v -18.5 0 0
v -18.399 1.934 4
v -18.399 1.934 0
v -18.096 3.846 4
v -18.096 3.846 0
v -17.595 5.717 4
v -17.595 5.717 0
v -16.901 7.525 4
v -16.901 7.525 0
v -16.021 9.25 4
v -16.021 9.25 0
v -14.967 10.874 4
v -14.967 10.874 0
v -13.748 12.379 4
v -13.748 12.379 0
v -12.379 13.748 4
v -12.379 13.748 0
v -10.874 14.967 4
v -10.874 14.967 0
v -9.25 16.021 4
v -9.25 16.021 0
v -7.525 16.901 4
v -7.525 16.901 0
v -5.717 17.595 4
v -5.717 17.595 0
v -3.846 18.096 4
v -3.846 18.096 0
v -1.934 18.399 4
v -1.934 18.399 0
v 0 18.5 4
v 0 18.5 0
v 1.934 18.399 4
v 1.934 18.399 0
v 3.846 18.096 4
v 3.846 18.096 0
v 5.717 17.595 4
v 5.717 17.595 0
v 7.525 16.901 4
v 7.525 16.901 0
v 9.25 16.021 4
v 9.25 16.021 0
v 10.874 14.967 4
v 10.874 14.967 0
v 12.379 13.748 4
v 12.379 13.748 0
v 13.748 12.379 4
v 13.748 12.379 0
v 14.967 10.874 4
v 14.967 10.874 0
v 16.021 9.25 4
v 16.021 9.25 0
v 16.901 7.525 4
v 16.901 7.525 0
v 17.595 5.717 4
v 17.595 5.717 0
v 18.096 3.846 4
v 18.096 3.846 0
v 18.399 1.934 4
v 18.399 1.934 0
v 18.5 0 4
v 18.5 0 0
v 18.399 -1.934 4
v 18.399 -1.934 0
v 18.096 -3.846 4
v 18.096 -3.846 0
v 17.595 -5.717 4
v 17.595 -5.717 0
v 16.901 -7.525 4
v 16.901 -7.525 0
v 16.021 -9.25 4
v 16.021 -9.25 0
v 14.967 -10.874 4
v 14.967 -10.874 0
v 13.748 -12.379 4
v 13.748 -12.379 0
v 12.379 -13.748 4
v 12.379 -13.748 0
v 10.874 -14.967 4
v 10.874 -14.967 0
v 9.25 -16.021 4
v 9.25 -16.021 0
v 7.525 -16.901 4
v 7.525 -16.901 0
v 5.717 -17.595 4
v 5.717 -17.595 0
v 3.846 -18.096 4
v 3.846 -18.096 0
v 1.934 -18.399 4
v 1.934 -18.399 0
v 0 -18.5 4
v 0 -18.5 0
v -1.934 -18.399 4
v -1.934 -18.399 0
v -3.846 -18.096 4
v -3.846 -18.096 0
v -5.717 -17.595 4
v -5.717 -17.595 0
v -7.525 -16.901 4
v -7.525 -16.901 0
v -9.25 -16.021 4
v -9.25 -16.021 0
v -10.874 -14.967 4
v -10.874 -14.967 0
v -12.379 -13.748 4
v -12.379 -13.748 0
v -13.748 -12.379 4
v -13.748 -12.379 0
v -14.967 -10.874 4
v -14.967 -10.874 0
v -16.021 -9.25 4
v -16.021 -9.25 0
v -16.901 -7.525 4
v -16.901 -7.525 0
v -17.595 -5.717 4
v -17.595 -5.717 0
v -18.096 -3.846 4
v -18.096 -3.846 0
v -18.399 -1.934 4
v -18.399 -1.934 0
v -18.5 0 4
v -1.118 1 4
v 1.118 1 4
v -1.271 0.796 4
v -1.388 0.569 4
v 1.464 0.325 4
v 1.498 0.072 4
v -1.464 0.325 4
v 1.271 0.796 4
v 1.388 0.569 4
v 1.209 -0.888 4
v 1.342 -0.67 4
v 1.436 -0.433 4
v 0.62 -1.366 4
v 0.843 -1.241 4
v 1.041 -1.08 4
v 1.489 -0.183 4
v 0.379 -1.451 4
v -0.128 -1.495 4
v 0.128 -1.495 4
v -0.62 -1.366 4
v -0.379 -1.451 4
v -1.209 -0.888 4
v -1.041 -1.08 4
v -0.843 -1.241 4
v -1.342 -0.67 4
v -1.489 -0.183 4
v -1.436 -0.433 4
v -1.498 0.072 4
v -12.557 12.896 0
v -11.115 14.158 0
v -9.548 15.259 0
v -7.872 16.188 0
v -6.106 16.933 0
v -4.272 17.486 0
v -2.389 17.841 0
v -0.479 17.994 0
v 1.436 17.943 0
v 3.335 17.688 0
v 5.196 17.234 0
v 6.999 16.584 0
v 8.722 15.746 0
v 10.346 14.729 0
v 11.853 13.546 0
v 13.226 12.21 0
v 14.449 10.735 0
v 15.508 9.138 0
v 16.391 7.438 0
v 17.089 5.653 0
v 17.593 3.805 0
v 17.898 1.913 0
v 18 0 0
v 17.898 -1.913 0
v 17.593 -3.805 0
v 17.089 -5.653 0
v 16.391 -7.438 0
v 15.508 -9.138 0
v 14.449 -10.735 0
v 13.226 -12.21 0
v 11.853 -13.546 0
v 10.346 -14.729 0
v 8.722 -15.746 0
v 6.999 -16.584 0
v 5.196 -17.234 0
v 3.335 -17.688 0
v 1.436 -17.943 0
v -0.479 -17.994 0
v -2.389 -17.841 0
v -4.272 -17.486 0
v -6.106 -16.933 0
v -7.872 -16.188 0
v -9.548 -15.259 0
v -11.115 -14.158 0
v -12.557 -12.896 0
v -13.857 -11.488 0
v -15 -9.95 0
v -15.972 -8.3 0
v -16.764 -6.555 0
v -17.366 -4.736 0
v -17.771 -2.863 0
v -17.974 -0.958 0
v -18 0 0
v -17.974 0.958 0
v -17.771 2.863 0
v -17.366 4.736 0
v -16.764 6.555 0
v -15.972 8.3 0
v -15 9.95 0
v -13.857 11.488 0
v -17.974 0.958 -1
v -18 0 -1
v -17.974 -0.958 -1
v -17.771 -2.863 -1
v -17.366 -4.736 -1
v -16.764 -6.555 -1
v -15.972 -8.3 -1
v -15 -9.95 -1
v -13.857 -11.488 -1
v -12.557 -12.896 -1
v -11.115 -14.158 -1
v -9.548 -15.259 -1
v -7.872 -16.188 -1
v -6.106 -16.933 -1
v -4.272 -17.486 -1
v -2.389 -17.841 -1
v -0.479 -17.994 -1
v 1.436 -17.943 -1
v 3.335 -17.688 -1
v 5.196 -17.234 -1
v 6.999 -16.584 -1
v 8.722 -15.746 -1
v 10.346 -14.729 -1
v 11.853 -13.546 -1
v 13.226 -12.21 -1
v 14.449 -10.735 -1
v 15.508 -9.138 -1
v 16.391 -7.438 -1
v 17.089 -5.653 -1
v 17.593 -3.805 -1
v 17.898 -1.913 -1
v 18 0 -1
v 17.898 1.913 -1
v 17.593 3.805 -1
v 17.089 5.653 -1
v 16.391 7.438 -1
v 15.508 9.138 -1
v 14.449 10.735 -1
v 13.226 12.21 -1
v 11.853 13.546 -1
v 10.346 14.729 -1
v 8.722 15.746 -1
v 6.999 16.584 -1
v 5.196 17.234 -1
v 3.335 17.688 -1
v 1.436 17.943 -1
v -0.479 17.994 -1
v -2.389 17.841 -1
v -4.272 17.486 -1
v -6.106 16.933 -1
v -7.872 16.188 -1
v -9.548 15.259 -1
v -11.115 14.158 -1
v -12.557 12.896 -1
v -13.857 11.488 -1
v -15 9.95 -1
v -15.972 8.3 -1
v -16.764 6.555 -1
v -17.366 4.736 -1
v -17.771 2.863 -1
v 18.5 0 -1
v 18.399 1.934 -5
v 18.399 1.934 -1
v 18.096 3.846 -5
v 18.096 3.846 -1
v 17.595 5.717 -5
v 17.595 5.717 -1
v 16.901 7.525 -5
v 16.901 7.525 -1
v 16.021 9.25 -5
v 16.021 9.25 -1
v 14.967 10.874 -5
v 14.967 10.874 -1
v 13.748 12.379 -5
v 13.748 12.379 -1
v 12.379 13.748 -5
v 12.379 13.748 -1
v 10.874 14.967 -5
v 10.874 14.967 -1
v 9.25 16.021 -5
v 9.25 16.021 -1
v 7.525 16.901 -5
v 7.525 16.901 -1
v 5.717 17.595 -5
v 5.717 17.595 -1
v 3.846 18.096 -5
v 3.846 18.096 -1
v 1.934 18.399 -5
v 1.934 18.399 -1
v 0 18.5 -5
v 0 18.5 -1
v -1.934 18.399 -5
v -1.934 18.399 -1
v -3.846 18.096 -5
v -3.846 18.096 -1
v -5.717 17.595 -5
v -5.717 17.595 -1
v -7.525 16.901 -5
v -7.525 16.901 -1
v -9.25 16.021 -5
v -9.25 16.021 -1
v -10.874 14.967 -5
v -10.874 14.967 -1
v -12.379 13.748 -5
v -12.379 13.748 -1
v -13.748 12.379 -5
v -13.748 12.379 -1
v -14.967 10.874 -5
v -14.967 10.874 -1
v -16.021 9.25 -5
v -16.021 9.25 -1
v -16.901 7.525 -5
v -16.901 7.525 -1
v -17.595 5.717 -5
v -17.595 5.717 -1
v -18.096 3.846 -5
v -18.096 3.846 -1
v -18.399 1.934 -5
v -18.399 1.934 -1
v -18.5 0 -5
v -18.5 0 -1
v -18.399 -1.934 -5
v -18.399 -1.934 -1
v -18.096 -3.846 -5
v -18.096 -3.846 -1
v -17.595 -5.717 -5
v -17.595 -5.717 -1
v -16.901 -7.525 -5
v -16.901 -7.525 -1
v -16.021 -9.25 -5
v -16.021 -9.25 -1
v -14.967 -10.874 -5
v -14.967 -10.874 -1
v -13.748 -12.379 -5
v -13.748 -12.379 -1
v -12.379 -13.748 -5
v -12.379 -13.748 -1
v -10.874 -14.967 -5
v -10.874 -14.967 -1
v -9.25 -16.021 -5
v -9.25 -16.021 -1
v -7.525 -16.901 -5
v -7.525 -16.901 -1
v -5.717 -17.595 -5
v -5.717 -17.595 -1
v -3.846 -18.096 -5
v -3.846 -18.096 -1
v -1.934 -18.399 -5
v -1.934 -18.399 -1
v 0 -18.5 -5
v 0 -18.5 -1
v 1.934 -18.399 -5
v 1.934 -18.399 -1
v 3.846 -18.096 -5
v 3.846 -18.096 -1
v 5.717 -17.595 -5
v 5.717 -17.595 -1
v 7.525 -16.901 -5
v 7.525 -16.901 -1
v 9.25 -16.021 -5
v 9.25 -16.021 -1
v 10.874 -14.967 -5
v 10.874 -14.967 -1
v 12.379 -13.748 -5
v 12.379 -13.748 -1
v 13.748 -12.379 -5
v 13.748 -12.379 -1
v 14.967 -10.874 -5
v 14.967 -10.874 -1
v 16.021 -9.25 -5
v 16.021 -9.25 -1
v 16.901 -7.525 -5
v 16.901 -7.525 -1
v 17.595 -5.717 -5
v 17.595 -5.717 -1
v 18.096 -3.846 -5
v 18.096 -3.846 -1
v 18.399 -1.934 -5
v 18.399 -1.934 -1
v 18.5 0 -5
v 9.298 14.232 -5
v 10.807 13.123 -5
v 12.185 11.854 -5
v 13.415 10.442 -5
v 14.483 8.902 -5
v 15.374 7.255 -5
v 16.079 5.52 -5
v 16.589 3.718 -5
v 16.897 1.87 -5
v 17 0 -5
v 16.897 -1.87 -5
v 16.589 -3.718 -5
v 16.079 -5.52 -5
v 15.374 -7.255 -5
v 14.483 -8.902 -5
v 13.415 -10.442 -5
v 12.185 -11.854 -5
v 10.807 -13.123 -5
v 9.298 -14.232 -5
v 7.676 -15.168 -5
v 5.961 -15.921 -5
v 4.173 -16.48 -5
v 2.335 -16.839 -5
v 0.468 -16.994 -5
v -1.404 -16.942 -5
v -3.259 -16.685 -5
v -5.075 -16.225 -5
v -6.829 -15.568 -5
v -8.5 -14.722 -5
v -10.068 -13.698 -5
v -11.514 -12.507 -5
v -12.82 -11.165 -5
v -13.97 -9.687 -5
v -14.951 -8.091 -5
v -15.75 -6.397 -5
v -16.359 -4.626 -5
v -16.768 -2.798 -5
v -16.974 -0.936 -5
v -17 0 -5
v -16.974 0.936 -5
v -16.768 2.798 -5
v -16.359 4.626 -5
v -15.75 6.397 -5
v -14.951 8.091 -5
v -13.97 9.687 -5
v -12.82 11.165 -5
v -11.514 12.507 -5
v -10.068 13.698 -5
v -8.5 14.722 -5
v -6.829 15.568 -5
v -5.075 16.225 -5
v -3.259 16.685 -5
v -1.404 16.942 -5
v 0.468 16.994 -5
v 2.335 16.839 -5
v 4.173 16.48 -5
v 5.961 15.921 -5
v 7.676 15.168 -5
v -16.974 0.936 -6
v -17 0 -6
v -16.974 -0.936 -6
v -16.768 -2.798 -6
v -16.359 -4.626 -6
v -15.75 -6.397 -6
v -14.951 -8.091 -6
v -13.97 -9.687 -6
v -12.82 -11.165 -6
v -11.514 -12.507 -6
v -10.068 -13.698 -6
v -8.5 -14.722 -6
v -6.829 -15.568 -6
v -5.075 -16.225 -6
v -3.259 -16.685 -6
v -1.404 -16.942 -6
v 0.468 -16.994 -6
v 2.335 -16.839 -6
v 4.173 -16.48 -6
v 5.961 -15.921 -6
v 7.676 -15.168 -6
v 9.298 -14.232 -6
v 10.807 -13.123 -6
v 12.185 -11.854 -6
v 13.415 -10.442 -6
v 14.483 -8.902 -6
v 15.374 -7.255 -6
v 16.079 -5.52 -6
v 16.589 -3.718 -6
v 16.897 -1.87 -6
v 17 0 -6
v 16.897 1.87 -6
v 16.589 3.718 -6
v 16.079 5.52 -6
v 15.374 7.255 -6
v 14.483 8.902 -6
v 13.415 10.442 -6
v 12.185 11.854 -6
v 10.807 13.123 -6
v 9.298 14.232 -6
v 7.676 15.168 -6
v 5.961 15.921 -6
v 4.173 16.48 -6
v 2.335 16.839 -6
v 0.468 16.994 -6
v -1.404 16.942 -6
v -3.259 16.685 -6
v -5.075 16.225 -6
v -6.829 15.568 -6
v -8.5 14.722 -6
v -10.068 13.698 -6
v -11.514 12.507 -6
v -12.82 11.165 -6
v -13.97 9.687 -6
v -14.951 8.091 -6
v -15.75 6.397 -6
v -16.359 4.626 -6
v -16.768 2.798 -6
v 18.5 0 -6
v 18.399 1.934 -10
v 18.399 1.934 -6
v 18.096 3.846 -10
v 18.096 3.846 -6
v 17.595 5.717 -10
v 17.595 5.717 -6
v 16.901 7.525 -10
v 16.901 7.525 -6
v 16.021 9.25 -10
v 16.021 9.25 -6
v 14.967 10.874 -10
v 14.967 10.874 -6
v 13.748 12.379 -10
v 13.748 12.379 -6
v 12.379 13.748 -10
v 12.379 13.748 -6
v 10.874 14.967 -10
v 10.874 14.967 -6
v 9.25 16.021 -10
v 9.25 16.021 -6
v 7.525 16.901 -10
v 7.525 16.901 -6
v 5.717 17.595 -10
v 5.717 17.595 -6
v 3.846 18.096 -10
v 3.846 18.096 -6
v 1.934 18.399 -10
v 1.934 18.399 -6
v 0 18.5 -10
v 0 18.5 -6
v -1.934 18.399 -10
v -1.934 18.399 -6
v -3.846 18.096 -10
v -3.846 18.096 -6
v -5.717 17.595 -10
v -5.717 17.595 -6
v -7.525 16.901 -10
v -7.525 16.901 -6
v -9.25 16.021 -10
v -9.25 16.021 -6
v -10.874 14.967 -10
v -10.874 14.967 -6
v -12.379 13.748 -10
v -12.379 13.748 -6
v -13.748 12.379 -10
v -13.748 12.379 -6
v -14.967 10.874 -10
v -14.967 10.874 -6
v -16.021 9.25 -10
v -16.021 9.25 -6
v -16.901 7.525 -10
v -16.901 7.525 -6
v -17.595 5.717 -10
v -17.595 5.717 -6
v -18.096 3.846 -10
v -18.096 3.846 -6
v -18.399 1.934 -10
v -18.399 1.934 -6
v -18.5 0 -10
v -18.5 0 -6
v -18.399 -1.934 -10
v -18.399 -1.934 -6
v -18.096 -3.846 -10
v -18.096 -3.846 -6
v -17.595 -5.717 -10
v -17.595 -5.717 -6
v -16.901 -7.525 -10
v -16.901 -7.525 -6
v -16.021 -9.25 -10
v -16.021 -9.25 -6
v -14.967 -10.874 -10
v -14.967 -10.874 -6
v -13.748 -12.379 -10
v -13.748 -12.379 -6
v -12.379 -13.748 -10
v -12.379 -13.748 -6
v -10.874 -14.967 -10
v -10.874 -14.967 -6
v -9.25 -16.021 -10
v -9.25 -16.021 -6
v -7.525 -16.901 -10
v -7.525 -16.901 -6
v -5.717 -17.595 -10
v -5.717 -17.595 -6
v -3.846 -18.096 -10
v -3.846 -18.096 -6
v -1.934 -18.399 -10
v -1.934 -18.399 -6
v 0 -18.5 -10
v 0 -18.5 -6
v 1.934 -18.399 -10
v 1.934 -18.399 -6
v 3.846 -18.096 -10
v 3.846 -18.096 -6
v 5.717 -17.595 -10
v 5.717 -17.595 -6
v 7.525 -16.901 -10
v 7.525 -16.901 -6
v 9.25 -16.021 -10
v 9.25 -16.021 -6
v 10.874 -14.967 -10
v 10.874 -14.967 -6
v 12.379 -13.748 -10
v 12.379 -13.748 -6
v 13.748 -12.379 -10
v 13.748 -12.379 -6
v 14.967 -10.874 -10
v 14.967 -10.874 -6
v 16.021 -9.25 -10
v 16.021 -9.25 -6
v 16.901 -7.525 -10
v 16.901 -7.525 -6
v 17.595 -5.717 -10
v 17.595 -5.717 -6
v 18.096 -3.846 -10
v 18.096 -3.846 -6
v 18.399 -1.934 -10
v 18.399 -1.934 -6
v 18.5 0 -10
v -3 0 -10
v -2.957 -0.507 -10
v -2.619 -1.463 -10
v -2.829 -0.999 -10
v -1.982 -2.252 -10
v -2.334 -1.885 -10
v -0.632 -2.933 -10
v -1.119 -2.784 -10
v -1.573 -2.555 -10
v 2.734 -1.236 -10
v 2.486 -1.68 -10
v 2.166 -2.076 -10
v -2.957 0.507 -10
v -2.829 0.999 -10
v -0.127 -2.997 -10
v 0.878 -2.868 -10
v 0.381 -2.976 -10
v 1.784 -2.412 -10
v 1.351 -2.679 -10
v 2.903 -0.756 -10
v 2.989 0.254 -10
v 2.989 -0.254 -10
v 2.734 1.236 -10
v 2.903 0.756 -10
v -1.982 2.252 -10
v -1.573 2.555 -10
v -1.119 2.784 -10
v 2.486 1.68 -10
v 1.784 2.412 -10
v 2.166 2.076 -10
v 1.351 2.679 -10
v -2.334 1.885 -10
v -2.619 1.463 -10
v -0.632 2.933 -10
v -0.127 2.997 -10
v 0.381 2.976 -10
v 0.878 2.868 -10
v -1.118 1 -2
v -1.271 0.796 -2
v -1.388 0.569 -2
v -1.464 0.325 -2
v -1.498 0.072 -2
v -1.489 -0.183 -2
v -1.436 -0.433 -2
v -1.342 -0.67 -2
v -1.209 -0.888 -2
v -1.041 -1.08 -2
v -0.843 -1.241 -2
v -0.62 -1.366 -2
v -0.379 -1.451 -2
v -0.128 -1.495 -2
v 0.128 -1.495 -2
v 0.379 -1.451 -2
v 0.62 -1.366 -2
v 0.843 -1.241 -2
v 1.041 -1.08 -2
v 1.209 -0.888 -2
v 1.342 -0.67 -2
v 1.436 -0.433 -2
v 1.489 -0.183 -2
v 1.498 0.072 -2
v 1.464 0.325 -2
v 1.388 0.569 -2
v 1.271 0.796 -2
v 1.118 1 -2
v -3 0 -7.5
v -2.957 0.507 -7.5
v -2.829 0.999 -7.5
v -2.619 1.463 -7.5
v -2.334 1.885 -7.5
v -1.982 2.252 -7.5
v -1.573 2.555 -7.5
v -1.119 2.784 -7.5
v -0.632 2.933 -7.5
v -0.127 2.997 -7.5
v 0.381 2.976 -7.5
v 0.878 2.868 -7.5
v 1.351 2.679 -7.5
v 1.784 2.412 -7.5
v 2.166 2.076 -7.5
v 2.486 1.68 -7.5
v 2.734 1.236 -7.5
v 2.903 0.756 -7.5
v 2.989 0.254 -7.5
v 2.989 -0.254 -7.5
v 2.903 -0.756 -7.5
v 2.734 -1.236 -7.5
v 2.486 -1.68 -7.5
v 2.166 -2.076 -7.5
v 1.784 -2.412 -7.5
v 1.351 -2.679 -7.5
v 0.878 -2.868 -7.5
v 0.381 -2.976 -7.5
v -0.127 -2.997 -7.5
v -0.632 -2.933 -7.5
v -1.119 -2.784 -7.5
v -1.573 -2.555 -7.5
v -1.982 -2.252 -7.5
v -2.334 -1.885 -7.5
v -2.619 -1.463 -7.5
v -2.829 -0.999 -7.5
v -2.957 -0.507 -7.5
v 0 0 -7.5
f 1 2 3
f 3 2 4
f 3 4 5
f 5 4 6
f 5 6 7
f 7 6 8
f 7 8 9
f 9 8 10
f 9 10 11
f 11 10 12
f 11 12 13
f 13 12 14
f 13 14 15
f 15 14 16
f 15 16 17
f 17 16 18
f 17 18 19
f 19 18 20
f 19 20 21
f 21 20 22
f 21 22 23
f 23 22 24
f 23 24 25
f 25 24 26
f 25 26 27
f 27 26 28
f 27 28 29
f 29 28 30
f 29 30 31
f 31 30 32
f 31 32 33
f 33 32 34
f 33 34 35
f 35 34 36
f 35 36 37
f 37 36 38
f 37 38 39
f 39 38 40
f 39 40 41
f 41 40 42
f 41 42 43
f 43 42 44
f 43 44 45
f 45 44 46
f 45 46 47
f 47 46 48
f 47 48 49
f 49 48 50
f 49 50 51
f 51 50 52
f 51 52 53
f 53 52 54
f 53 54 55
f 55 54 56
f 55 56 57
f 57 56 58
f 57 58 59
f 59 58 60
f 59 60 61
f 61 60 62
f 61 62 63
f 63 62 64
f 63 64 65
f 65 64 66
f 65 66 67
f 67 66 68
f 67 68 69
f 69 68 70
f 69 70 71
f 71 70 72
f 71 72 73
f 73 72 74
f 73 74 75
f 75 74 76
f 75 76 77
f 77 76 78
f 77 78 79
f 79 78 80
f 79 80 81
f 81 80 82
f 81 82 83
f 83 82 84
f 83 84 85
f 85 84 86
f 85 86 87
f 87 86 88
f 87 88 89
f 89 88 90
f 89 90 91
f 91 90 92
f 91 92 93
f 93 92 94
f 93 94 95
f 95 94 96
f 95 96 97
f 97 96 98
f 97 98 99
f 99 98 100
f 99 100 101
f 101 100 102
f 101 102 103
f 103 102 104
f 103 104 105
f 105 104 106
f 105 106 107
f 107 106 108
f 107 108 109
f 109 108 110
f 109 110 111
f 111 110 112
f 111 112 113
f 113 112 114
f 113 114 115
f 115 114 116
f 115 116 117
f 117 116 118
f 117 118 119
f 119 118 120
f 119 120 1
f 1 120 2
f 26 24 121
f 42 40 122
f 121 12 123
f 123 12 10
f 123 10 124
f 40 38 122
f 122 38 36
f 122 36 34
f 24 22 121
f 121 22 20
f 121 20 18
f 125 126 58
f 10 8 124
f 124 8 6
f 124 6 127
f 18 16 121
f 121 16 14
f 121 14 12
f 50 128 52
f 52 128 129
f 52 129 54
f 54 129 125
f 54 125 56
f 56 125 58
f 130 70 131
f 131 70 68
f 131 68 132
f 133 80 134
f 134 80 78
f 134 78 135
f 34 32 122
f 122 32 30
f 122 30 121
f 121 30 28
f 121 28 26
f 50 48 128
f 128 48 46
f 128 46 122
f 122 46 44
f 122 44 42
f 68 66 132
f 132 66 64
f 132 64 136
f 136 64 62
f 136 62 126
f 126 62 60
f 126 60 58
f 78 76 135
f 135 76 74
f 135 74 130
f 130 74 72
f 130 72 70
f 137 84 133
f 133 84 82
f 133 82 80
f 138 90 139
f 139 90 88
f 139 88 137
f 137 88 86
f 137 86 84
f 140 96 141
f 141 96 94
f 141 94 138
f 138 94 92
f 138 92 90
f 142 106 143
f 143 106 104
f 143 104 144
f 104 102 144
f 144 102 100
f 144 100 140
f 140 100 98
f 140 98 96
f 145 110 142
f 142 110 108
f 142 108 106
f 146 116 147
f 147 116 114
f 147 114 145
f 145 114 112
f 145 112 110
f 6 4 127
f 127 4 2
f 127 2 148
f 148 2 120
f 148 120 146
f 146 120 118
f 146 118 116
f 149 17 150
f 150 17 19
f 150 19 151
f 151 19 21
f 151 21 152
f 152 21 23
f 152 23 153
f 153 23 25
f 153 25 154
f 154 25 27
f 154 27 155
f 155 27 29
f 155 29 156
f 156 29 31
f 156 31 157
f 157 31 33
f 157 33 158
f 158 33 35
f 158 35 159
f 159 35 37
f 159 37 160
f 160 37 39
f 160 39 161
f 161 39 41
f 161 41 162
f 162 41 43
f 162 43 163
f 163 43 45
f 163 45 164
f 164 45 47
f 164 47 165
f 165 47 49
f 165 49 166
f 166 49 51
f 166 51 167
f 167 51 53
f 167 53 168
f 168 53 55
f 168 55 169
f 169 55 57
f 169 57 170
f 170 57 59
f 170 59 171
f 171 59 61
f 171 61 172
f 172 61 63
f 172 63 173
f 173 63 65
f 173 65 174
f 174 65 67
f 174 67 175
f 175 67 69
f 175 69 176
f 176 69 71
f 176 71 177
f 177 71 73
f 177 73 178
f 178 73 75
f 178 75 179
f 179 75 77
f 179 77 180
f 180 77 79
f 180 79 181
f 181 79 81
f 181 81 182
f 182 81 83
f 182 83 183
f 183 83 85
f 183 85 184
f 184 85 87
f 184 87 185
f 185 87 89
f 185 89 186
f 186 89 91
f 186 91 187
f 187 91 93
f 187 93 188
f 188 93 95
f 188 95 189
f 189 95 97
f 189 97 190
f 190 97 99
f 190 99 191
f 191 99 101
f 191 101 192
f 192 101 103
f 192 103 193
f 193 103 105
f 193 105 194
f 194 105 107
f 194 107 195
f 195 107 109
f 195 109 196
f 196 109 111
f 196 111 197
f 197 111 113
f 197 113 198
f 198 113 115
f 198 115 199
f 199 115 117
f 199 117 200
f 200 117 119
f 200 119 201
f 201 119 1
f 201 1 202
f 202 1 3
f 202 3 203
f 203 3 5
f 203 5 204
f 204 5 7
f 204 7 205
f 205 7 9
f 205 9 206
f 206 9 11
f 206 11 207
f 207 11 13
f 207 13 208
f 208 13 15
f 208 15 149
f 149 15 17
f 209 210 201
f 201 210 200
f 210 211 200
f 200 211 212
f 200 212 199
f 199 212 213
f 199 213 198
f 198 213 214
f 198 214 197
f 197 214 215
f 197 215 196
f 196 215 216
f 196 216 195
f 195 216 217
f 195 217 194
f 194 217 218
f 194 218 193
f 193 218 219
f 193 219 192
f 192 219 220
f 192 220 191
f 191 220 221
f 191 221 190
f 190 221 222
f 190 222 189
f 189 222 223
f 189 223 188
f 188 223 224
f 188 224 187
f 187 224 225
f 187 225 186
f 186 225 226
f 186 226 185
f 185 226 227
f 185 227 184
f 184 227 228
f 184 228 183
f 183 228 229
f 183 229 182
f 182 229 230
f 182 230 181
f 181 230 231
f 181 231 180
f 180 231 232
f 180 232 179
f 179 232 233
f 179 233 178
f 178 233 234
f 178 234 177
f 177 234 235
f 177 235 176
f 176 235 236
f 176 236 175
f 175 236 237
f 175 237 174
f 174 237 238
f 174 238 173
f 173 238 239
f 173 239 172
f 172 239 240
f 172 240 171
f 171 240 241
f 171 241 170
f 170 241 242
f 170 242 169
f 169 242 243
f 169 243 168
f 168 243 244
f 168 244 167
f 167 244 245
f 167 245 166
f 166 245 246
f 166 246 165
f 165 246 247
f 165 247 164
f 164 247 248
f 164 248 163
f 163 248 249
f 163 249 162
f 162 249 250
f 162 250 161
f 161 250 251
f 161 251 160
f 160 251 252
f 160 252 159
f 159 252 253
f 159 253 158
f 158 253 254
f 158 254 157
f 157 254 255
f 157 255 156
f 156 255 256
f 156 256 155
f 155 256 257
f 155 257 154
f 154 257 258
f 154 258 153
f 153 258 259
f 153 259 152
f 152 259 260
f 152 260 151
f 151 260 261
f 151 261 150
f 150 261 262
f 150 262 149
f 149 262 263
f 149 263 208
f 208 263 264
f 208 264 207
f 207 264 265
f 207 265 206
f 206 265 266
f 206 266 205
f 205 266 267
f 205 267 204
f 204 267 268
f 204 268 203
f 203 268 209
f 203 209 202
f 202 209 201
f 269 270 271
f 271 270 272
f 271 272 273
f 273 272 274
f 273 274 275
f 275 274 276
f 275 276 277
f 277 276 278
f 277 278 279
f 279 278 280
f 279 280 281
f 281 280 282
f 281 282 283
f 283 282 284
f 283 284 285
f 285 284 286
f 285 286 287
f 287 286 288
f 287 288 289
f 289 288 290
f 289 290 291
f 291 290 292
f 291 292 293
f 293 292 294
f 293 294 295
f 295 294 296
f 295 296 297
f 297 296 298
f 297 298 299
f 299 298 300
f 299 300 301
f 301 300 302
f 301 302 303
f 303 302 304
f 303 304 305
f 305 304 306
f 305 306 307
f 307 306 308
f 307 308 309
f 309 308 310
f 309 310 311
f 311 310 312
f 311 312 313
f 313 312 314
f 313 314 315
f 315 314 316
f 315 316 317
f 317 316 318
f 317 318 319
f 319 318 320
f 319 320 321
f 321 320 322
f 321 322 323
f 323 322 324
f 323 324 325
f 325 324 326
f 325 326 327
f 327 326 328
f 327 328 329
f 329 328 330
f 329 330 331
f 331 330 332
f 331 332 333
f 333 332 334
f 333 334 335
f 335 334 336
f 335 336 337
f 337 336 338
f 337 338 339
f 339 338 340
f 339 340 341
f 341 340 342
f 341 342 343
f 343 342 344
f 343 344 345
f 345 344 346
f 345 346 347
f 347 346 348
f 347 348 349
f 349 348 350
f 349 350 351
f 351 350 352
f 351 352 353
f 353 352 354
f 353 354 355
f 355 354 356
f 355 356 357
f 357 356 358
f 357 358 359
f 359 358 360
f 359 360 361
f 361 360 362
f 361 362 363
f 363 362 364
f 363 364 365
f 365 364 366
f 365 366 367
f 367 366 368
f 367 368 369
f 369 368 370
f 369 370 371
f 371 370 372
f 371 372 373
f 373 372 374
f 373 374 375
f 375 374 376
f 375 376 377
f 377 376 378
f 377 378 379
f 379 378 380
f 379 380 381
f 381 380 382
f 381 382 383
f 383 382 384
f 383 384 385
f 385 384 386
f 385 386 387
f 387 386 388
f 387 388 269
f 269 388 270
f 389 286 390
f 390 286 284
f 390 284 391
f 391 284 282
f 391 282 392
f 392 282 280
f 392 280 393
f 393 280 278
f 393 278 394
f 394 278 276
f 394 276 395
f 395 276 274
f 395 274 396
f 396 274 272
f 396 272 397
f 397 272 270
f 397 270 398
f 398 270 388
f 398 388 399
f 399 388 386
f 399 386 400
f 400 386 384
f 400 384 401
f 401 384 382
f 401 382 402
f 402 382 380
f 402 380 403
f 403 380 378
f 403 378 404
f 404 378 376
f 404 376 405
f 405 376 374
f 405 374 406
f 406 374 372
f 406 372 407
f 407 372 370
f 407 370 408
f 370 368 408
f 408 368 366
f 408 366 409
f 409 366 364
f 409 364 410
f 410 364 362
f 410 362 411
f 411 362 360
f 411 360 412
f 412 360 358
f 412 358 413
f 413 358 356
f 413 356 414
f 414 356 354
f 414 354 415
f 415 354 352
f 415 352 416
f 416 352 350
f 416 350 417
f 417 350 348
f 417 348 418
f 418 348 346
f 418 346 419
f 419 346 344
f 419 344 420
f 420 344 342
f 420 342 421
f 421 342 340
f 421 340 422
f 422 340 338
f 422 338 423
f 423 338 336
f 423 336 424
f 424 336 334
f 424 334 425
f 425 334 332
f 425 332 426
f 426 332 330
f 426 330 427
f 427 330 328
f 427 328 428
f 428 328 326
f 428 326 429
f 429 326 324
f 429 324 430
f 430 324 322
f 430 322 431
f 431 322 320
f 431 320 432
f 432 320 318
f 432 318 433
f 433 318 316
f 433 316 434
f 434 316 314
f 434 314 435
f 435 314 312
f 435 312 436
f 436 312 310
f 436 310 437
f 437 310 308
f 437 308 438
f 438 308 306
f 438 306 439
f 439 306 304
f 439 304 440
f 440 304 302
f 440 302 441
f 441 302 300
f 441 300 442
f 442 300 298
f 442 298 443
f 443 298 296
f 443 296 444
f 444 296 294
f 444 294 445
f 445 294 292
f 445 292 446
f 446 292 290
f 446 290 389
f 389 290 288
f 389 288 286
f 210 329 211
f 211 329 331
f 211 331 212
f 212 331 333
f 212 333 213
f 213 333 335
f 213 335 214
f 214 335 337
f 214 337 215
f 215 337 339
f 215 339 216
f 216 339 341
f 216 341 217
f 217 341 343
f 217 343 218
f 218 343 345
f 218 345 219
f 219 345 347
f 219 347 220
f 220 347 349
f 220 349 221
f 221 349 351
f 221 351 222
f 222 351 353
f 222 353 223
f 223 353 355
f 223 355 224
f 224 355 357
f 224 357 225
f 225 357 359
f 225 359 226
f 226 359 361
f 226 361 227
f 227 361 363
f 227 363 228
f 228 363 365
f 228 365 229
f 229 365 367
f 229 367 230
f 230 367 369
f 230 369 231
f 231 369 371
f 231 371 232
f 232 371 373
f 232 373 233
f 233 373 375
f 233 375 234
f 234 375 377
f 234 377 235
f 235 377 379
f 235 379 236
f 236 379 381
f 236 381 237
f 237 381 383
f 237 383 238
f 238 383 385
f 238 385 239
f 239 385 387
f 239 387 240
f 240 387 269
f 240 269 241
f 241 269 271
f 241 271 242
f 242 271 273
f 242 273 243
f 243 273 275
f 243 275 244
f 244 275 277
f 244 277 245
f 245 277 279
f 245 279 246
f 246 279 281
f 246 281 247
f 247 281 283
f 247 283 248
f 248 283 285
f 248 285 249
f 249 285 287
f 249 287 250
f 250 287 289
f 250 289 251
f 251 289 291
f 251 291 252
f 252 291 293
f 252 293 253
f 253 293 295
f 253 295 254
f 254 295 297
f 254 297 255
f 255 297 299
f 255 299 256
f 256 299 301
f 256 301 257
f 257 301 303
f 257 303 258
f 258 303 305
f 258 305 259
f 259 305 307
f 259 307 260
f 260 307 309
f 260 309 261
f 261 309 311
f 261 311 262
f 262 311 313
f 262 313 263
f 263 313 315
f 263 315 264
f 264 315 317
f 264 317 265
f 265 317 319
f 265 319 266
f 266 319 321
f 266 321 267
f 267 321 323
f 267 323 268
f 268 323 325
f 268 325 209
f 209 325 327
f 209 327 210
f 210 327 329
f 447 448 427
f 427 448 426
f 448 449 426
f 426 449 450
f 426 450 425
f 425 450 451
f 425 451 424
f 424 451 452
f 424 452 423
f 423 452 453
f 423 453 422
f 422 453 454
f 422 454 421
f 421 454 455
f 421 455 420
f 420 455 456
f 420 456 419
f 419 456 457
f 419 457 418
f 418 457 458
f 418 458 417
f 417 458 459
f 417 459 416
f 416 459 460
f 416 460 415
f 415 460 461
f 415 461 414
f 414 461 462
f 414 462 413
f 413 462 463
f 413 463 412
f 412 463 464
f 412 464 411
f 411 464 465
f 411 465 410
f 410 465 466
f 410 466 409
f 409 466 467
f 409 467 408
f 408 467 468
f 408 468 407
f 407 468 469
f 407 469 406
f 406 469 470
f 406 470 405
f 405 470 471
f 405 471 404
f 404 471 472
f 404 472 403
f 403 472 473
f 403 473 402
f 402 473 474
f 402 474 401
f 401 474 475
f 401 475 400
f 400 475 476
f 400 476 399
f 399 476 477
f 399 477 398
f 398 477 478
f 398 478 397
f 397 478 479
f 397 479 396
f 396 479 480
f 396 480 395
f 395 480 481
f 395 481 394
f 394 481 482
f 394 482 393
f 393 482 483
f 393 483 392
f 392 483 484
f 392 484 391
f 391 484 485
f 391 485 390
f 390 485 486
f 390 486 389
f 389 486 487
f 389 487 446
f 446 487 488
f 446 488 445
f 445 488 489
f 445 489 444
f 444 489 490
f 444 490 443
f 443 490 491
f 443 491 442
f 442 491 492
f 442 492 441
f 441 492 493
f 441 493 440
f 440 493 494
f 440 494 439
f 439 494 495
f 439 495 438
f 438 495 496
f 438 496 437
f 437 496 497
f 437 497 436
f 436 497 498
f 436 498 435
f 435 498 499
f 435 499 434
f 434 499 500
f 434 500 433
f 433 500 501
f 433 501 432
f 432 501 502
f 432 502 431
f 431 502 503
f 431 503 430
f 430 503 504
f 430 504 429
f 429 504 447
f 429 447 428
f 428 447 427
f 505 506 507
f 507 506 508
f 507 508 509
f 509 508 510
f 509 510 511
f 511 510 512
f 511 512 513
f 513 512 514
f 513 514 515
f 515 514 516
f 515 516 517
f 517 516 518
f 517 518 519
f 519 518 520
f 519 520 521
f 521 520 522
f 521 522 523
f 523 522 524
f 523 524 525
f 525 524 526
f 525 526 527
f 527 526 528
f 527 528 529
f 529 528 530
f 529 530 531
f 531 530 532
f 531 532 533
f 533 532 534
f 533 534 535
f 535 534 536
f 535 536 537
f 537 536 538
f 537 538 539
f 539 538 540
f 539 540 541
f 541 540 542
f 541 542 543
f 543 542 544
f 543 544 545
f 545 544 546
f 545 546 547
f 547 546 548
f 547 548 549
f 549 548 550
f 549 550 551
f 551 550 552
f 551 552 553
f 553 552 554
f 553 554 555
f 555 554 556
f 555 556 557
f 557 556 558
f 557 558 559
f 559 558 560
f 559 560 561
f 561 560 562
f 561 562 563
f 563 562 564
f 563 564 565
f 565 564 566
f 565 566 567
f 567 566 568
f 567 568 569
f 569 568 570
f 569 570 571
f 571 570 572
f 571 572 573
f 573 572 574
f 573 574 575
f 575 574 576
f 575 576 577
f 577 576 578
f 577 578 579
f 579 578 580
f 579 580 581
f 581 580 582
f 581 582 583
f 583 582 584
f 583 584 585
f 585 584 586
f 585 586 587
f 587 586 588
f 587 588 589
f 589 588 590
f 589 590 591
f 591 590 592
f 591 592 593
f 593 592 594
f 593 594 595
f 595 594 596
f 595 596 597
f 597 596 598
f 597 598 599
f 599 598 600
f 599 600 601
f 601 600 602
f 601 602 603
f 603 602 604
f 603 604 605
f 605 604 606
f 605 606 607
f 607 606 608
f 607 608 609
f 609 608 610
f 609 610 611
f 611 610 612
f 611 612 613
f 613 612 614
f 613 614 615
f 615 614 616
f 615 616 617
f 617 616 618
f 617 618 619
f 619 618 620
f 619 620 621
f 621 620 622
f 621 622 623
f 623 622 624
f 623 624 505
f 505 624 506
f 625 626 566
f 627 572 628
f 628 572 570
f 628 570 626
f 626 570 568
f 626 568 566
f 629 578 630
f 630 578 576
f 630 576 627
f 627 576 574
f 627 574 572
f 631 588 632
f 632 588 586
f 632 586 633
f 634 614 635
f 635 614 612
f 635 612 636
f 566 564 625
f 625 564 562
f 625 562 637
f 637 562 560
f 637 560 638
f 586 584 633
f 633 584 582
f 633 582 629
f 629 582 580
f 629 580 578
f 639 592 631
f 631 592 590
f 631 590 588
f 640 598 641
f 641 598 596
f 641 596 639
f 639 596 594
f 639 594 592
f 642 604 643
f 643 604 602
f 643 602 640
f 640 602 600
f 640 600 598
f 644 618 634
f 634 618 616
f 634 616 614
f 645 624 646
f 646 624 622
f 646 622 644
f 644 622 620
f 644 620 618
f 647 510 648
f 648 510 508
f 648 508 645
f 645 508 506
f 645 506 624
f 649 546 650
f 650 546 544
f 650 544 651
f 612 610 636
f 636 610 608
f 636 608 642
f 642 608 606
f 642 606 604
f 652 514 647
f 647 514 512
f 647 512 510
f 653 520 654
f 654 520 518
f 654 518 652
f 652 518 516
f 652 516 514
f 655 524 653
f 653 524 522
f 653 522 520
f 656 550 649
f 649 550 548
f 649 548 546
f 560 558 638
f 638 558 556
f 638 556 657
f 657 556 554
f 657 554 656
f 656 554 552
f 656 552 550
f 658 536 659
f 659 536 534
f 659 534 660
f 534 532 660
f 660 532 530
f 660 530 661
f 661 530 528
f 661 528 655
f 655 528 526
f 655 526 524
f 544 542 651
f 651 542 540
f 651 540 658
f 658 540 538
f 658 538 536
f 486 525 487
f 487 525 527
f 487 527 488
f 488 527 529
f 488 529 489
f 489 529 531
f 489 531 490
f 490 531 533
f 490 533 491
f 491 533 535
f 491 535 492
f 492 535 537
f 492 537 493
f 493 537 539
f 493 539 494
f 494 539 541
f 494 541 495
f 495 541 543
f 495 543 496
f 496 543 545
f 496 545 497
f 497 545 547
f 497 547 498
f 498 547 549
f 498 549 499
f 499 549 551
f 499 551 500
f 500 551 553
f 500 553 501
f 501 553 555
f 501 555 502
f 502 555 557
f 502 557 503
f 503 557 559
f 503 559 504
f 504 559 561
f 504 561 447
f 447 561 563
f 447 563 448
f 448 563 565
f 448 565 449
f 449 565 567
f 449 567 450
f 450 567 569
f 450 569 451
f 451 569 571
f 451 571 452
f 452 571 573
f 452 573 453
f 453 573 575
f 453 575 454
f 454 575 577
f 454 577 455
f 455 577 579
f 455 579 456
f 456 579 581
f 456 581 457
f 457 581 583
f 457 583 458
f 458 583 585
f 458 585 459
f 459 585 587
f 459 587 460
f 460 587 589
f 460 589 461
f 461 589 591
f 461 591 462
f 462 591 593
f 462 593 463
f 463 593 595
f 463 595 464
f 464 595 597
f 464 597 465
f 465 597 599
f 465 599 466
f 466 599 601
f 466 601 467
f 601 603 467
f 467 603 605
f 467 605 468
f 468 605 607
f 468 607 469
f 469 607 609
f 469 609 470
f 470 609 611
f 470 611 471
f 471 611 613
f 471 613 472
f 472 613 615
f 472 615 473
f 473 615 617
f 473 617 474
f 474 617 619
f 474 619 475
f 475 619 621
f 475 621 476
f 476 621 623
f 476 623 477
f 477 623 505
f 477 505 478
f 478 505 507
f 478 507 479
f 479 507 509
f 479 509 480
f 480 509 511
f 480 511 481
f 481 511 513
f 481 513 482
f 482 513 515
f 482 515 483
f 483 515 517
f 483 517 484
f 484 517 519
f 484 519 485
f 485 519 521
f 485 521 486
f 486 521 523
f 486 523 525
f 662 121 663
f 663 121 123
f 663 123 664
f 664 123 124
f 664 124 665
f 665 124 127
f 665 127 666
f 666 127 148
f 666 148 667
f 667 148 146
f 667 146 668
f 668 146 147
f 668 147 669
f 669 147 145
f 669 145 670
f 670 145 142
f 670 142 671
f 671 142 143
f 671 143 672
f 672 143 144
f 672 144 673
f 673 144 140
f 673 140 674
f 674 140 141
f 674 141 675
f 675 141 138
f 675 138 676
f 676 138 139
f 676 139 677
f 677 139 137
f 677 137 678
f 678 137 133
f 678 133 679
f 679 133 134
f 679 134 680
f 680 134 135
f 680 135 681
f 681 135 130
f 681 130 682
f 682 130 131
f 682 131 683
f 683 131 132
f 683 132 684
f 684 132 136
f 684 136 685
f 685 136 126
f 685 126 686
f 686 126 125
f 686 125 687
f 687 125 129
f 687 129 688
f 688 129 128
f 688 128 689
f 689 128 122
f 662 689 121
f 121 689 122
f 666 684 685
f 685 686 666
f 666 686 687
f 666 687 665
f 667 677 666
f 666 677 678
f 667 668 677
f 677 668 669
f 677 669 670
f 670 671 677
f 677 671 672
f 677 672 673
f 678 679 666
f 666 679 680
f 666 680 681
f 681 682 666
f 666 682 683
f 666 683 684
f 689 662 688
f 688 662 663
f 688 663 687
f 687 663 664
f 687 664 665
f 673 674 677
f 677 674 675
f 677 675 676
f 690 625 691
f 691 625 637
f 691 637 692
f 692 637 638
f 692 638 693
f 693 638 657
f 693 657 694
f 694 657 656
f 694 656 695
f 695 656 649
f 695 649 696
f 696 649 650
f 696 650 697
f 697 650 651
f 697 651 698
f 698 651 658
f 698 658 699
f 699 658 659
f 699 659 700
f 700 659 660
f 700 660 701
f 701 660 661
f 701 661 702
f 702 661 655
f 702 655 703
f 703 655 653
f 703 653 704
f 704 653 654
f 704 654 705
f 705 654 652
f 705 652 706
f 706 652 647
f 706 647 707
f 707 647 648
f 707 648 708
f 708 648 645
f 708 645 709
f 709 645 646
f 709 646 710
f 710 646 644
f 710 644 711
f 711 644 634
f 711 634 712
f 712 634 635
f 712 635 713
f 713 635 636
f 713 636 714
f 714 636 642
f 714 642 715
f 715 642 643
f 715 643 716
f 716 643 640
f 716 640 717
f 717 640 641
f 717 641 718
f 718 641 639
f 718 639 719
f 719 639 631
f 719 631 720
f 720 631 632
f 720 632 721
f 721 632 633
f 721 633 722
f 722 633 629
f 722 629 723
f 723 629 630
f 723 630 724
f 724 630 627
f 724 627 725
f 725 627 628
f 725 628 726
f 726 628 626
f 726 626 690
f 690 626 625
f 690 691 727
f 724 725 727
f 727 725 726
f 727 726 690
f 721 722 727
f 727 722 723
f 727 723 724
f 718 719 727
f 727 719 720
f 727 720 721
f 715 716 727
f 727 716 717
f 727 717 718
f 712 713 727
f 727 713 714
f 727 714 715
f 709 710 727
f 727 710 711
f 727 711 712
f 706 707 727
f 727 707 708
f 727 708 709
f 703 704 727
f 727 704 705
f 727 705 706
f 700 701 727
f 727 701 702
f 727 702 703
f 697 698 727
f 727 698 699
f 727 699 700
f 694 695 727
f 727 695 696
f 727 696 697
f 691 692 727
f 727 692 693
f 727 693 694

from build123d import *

# Parameters (mm, degrees)
SKETCH_1_R          = 18.5
EXTRUDE_1_DEPTH     = 4
SKETCH_2_R          = 18
EXTRUDE_2_DEPTH     = 1
SKETCH_3_R          = 18.5
EXTRUDE_3_DEPTH     = 4
SKETCH_4_R          = 17
EXTRUDE_4_DEPTH     = 1
SKETCH_5_R          = 18.5
EXTRUDE_5_DEPTH     = 4
CUT_EXTRUDE_1_DEPTH = 6
SKETCH_7_R          = 3
CUT_EXTRUDE_2_DEPTH = 2.5


with BuildPart() as part:
    # 草图1 → 凸台-拉伸1 (new body)
    with BuildSketch(Plane.XY):
        Circle(SKETCH_1_R)
    extrude(amount=EXTRUDE_1_DEPTH)

    # 草图2 → 凸台-拉伸2 (add)
    with BuildSketch(Plane(origin=(0, 0, 0), x_dir=(-1, 0, 0), z_dir=(0, 0, -1))):
        Circle(SKETCH_2_R)
    extrude(amount=EXTRUDE_2_DEPTH)

    # 草图3 → 凸台-拉伸3 (add)
    with BuildSketch(Plane(origin=(0, 0, -1), x_dir=(-1, 0, 0), z_dir=(0, 0, -1))):
        Circle(SKETCH_3_R)
    extrude(amount=EXTRUDE_3_DEPTH)

    # 草图4 → 凸台-拉伸4 (add)
    with BuildSketch(Plane(origin=(0, 0, -5), x_dir=(-1, 0, 0), z_dir=(0, 0, -1))):
        Circle(SKETCH_4_R)
    extrude(amount=EXTRUDE_4_DEPTH)

    # 草图5 → 凸台-拉伸5 (add)
    with BuildSketch(Plane(origin=(0, 0, -6), x_dir=(-1, 0, 0), z_dir=(0, 0, -1))):
        Circle(SKETCH_5_R)
    extrude(amount=EXTRUDE_5_DEPTH)

    # 草图6 → 切除-拉伸1 (cut)
    with BuildSketch(Plane.XY.offset(4)):
        with BuildLine():
            Line((1.118033989, 1), (-1.118033989, 1))
            ThreePointArc((-1.118033989, 1), (0, -1.5), (1.118033989, 1))
        make_face()
    extrude(amount=-CUT_EXTRUDE_1_DEPTH, mode=Mode.SUBTRACT)

    # 草图7 → 切除-拉伸2 (cut)
    with BuildSketch(Plane(origin=(0, 0, -10), x_dir=(-1, 0, 0), z_dir=(0, 0, -1))):
        Circle(SKETCH_7_R)
    extrude(amount=-CUT_EXTRUDE_2_DEPTH, mode=Mode.SUBTRACT)


solid = part.part
